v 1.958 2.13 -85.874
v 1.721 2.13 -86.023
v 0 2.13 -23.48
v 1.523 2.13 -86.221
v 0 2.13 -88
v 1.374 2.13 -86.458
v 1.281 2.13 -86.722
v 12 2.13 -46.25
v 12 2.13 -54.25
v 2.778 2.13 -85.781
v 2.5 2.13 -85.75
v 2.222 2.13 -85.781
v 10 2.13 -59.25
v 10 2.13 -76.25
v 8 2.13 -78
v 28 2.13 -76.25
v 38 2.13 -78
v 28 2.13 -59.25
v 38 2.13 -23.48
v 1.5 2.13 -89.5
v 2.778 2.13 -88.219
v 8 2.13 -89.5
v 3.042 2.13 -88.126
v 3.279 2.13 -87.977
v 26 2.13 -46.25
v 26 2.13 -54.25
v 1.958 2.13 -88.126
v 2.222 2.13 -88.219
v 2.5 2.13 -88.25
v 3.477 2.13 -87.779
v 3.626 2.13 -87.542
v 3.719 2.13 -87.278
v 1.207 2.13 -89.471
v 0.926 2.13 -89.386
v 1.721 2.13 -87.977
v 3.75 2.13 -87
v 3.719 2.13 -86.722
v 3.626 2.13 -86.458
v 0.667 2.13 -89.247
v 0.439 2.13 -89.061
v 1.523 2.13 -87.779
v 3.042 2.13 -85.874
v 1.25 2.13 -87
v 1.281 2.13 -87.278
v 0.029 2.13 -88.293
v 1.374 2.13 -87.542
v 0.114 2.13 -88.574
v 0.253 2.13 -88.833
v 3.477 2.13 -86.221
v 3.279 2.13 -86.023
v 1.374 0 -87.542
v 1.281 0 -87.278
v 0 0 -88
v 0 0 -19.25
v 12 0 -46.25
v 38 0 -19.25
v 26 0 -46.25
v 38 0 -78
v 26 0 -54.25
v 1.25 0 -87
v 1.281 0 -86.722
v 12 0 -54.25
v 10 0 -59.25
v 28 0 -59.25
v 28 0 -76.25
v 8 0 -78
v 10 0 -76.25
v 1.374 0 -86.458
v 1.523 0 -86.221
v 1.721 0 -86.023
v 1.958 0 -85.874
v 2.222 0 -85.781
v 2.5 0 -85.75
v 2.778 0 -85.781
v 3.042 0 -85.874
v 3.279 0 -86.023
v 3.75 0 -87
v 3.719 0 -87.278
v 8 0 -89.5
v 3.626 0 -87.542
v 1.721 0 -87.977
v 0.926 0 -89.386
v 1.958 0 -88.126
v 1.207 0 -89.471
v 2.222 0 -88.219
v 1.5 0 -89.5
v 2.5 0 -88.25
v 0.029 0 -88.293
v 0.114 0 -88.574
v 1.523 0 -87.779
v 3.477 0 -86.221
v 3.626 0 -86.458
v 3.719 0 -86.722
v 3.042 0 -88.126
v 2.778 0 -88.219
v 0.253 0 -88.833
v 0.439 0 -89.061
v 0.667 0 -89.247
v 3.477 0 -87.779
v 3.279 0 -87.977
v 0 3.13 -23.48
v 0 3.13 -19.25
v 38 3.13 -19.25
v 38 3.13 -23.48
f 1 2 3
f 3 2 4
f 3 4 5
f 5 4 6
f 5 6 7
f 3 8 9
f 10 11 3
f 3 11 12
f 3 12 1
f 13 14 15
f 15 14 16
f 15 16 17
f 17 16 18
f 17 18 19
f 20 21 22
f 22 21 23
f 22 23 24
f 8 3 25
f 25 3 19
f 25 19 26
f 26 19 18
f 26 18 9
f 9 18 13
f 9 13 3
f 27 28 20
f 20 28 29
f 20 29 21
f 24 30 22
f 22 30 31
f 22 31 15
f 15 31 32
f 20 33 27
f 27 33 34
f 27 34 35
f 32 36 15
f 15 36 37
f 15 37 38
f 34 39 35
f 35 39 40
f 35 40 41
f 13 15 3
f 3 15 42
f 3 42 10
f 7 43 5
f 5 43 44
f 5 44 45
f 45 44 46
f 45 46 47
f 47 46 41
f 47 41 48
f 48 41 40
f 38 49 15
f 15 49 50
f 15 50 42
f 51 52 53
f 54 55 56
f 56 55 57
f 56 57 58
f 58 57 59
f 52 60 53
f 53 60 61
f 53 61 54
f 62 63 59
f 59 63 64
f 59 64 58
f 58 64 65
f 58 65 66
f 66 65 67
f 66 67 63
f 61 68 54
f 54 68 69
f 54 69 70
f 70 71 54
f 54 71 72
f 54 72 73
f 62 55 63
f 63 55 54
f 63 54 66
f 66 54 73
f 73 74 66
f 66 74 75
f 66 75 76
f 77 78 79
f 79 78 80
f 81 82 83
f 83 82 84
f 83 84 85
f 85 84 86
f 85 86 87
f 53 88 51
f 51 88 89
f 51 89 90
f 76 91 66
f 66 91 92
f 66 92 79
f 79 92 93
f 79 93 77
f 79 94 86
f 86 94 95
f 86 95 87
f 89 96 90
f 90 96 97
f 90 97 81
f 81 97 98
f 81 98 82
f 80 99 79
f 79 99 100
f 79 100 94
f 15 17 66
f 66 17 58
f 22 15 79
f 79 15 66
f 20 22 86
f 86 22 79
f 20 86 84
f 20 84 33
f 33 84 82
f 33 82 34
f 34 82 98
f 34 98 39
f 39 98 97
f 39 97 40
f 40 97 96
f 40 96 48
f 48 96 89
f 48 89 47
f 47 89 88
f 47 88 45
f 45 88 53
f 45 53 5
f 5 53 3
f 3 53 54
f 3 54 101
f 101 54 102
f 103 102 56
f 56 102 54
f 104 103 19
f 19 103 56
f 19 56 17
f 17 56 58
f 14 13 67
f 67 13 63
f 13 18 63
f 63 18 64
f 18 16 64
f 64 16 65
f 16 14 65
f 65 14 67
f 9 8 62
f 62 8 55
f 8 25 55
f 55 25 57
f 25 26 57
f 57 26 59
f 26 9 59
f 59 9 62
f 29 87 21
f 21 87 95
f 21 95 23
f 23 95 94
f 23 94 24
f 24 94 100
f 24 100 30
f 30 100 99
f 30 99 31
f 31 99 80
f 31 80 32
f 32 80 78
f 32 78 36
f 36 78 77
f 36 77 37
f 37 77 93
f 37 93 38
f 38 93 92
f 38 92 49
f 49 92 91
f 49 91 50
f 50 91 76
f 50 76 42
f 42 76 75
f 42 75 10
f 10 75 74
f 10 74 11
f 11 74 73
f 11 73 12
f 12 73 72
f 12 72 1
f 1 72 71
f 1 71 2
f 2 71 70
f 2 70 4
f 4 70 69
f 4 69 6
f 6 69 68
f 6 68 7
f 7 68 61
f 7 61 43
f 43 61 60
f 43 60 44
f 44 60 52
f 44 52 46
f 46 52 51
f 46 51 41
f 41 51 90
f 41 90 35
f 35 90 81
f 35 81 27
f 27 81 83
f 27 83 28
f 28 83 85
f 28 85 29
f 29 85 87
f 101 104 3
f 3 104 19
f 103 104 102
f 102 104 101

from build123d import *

# Parameters (mm, degrees)
BOSS_EXTRUDE1_OUTLINE_W   = 14
BOSS_EXTRUDE1_OUTLINE_H   = 8
BOSS_EXTRUDE1_OUTLINE_R   = 1.25
BOSS_EXTRUDE1_OUTLINE_W_2 = 18
BOSS_EXTRUDE1_OUTLINE_H_2 = 17
BOSS_EXTRUDE1_DEPTH       = 2.13
SKETCH2_W                 = 38
SKETCH2_H                 = 4.23
BOSS_EXTRUDE2_DEPTH       = 1
SKETCH3_W                 = 8
SKETCH3_H                 = 2.13
CUT_EXTRUDE1_DEPTH        = 11.5


# Read off the part's stored shape, not the designer's step: Boss-Extrude1
with BuildPart() as part:
    # Boss-Extrude1 outline → Boss-Extrude1 (new body)
    with BuildSketch(Plane(origin=(0, 0, 0), x_dir=(1, 0, 0), z_dir=(0, 1, 0))):
        with BuildLine():
            ThreePointArc((38, 88), (37.560660172, 89.060660172), (36.5, 89.5))
            Line((36.5, 89.5), (30, 89.5))
            Line((30, 89.5), (30, 78))
            Line((30, 78), (8, 78))
            Line((8, 78), (8, 89.5))
            Line((8, 89.5), (1.5, 89.5))
            ThreePointArc((1.5, 89.5), (0.439339828, 89.060660172), (0, 88))
            Line((0, 88), (0, 19.25))
            Line((0, 19.25), (38, 19.25))
            Line((38, 19.25), (38, 88))
        make_face()
        with Locations((19, 50.25)):
            Rectangle(BOSS_EXTRUDE1_OUTLINE_W, BOSS_EXTRUDE1_OUTLINE_H, mode=Mode.SUBTRACT)
        with Locations((2.5, 87)):
            Circle(BOSS_EXTRUDE1_OUTLINE_R, mode=Mode.SUBTRACT)
        with Locations((19, 67.75)):
            Rectangle(BOSS_EXTRUDE1_OUTLINE_W_2, BOSS_EXTRUDE1_OUTLINE_H_2, mode=Mode.SUBTRACT)
        with Locations((35.5, 87)):
            Circle(BOSS_EXTRUDE1_OUTLINE_R, mode=Mode.SUBTRACT)
    extrude(amount=BOSS_EXTRUDE1_DEPTH)

    # Sketch2 → Boss-Extrude2 (add)
    with BuildSketch(Plane(origin=(0, 2.13, 0), x_dir=(1, 0, 0), z_dir=(0, 1, 0))):
        with Locations((19, 21.365)):
            Rectangle(SKETCH2_W, SKETCH2_H)
    extrude(amount=BOSS_EXTRUDE2_DEPTH)

    # Sketch3 → Cut-Extrude1 (cut)
    with BuildSketch(Plane(origin=(0, 0, -89.5), x_dir=(-1, 0, 0), z_dir=(0, 0, -1))):
        with Locations((-34, 1.065)):
            Rectangle(SKETCH3_W, SKETCH3_H)
    extrude(amount=-CUT_EXTRUDE1_DEPTH, mode=Mode.SUBTRACT)


solid = part.part
